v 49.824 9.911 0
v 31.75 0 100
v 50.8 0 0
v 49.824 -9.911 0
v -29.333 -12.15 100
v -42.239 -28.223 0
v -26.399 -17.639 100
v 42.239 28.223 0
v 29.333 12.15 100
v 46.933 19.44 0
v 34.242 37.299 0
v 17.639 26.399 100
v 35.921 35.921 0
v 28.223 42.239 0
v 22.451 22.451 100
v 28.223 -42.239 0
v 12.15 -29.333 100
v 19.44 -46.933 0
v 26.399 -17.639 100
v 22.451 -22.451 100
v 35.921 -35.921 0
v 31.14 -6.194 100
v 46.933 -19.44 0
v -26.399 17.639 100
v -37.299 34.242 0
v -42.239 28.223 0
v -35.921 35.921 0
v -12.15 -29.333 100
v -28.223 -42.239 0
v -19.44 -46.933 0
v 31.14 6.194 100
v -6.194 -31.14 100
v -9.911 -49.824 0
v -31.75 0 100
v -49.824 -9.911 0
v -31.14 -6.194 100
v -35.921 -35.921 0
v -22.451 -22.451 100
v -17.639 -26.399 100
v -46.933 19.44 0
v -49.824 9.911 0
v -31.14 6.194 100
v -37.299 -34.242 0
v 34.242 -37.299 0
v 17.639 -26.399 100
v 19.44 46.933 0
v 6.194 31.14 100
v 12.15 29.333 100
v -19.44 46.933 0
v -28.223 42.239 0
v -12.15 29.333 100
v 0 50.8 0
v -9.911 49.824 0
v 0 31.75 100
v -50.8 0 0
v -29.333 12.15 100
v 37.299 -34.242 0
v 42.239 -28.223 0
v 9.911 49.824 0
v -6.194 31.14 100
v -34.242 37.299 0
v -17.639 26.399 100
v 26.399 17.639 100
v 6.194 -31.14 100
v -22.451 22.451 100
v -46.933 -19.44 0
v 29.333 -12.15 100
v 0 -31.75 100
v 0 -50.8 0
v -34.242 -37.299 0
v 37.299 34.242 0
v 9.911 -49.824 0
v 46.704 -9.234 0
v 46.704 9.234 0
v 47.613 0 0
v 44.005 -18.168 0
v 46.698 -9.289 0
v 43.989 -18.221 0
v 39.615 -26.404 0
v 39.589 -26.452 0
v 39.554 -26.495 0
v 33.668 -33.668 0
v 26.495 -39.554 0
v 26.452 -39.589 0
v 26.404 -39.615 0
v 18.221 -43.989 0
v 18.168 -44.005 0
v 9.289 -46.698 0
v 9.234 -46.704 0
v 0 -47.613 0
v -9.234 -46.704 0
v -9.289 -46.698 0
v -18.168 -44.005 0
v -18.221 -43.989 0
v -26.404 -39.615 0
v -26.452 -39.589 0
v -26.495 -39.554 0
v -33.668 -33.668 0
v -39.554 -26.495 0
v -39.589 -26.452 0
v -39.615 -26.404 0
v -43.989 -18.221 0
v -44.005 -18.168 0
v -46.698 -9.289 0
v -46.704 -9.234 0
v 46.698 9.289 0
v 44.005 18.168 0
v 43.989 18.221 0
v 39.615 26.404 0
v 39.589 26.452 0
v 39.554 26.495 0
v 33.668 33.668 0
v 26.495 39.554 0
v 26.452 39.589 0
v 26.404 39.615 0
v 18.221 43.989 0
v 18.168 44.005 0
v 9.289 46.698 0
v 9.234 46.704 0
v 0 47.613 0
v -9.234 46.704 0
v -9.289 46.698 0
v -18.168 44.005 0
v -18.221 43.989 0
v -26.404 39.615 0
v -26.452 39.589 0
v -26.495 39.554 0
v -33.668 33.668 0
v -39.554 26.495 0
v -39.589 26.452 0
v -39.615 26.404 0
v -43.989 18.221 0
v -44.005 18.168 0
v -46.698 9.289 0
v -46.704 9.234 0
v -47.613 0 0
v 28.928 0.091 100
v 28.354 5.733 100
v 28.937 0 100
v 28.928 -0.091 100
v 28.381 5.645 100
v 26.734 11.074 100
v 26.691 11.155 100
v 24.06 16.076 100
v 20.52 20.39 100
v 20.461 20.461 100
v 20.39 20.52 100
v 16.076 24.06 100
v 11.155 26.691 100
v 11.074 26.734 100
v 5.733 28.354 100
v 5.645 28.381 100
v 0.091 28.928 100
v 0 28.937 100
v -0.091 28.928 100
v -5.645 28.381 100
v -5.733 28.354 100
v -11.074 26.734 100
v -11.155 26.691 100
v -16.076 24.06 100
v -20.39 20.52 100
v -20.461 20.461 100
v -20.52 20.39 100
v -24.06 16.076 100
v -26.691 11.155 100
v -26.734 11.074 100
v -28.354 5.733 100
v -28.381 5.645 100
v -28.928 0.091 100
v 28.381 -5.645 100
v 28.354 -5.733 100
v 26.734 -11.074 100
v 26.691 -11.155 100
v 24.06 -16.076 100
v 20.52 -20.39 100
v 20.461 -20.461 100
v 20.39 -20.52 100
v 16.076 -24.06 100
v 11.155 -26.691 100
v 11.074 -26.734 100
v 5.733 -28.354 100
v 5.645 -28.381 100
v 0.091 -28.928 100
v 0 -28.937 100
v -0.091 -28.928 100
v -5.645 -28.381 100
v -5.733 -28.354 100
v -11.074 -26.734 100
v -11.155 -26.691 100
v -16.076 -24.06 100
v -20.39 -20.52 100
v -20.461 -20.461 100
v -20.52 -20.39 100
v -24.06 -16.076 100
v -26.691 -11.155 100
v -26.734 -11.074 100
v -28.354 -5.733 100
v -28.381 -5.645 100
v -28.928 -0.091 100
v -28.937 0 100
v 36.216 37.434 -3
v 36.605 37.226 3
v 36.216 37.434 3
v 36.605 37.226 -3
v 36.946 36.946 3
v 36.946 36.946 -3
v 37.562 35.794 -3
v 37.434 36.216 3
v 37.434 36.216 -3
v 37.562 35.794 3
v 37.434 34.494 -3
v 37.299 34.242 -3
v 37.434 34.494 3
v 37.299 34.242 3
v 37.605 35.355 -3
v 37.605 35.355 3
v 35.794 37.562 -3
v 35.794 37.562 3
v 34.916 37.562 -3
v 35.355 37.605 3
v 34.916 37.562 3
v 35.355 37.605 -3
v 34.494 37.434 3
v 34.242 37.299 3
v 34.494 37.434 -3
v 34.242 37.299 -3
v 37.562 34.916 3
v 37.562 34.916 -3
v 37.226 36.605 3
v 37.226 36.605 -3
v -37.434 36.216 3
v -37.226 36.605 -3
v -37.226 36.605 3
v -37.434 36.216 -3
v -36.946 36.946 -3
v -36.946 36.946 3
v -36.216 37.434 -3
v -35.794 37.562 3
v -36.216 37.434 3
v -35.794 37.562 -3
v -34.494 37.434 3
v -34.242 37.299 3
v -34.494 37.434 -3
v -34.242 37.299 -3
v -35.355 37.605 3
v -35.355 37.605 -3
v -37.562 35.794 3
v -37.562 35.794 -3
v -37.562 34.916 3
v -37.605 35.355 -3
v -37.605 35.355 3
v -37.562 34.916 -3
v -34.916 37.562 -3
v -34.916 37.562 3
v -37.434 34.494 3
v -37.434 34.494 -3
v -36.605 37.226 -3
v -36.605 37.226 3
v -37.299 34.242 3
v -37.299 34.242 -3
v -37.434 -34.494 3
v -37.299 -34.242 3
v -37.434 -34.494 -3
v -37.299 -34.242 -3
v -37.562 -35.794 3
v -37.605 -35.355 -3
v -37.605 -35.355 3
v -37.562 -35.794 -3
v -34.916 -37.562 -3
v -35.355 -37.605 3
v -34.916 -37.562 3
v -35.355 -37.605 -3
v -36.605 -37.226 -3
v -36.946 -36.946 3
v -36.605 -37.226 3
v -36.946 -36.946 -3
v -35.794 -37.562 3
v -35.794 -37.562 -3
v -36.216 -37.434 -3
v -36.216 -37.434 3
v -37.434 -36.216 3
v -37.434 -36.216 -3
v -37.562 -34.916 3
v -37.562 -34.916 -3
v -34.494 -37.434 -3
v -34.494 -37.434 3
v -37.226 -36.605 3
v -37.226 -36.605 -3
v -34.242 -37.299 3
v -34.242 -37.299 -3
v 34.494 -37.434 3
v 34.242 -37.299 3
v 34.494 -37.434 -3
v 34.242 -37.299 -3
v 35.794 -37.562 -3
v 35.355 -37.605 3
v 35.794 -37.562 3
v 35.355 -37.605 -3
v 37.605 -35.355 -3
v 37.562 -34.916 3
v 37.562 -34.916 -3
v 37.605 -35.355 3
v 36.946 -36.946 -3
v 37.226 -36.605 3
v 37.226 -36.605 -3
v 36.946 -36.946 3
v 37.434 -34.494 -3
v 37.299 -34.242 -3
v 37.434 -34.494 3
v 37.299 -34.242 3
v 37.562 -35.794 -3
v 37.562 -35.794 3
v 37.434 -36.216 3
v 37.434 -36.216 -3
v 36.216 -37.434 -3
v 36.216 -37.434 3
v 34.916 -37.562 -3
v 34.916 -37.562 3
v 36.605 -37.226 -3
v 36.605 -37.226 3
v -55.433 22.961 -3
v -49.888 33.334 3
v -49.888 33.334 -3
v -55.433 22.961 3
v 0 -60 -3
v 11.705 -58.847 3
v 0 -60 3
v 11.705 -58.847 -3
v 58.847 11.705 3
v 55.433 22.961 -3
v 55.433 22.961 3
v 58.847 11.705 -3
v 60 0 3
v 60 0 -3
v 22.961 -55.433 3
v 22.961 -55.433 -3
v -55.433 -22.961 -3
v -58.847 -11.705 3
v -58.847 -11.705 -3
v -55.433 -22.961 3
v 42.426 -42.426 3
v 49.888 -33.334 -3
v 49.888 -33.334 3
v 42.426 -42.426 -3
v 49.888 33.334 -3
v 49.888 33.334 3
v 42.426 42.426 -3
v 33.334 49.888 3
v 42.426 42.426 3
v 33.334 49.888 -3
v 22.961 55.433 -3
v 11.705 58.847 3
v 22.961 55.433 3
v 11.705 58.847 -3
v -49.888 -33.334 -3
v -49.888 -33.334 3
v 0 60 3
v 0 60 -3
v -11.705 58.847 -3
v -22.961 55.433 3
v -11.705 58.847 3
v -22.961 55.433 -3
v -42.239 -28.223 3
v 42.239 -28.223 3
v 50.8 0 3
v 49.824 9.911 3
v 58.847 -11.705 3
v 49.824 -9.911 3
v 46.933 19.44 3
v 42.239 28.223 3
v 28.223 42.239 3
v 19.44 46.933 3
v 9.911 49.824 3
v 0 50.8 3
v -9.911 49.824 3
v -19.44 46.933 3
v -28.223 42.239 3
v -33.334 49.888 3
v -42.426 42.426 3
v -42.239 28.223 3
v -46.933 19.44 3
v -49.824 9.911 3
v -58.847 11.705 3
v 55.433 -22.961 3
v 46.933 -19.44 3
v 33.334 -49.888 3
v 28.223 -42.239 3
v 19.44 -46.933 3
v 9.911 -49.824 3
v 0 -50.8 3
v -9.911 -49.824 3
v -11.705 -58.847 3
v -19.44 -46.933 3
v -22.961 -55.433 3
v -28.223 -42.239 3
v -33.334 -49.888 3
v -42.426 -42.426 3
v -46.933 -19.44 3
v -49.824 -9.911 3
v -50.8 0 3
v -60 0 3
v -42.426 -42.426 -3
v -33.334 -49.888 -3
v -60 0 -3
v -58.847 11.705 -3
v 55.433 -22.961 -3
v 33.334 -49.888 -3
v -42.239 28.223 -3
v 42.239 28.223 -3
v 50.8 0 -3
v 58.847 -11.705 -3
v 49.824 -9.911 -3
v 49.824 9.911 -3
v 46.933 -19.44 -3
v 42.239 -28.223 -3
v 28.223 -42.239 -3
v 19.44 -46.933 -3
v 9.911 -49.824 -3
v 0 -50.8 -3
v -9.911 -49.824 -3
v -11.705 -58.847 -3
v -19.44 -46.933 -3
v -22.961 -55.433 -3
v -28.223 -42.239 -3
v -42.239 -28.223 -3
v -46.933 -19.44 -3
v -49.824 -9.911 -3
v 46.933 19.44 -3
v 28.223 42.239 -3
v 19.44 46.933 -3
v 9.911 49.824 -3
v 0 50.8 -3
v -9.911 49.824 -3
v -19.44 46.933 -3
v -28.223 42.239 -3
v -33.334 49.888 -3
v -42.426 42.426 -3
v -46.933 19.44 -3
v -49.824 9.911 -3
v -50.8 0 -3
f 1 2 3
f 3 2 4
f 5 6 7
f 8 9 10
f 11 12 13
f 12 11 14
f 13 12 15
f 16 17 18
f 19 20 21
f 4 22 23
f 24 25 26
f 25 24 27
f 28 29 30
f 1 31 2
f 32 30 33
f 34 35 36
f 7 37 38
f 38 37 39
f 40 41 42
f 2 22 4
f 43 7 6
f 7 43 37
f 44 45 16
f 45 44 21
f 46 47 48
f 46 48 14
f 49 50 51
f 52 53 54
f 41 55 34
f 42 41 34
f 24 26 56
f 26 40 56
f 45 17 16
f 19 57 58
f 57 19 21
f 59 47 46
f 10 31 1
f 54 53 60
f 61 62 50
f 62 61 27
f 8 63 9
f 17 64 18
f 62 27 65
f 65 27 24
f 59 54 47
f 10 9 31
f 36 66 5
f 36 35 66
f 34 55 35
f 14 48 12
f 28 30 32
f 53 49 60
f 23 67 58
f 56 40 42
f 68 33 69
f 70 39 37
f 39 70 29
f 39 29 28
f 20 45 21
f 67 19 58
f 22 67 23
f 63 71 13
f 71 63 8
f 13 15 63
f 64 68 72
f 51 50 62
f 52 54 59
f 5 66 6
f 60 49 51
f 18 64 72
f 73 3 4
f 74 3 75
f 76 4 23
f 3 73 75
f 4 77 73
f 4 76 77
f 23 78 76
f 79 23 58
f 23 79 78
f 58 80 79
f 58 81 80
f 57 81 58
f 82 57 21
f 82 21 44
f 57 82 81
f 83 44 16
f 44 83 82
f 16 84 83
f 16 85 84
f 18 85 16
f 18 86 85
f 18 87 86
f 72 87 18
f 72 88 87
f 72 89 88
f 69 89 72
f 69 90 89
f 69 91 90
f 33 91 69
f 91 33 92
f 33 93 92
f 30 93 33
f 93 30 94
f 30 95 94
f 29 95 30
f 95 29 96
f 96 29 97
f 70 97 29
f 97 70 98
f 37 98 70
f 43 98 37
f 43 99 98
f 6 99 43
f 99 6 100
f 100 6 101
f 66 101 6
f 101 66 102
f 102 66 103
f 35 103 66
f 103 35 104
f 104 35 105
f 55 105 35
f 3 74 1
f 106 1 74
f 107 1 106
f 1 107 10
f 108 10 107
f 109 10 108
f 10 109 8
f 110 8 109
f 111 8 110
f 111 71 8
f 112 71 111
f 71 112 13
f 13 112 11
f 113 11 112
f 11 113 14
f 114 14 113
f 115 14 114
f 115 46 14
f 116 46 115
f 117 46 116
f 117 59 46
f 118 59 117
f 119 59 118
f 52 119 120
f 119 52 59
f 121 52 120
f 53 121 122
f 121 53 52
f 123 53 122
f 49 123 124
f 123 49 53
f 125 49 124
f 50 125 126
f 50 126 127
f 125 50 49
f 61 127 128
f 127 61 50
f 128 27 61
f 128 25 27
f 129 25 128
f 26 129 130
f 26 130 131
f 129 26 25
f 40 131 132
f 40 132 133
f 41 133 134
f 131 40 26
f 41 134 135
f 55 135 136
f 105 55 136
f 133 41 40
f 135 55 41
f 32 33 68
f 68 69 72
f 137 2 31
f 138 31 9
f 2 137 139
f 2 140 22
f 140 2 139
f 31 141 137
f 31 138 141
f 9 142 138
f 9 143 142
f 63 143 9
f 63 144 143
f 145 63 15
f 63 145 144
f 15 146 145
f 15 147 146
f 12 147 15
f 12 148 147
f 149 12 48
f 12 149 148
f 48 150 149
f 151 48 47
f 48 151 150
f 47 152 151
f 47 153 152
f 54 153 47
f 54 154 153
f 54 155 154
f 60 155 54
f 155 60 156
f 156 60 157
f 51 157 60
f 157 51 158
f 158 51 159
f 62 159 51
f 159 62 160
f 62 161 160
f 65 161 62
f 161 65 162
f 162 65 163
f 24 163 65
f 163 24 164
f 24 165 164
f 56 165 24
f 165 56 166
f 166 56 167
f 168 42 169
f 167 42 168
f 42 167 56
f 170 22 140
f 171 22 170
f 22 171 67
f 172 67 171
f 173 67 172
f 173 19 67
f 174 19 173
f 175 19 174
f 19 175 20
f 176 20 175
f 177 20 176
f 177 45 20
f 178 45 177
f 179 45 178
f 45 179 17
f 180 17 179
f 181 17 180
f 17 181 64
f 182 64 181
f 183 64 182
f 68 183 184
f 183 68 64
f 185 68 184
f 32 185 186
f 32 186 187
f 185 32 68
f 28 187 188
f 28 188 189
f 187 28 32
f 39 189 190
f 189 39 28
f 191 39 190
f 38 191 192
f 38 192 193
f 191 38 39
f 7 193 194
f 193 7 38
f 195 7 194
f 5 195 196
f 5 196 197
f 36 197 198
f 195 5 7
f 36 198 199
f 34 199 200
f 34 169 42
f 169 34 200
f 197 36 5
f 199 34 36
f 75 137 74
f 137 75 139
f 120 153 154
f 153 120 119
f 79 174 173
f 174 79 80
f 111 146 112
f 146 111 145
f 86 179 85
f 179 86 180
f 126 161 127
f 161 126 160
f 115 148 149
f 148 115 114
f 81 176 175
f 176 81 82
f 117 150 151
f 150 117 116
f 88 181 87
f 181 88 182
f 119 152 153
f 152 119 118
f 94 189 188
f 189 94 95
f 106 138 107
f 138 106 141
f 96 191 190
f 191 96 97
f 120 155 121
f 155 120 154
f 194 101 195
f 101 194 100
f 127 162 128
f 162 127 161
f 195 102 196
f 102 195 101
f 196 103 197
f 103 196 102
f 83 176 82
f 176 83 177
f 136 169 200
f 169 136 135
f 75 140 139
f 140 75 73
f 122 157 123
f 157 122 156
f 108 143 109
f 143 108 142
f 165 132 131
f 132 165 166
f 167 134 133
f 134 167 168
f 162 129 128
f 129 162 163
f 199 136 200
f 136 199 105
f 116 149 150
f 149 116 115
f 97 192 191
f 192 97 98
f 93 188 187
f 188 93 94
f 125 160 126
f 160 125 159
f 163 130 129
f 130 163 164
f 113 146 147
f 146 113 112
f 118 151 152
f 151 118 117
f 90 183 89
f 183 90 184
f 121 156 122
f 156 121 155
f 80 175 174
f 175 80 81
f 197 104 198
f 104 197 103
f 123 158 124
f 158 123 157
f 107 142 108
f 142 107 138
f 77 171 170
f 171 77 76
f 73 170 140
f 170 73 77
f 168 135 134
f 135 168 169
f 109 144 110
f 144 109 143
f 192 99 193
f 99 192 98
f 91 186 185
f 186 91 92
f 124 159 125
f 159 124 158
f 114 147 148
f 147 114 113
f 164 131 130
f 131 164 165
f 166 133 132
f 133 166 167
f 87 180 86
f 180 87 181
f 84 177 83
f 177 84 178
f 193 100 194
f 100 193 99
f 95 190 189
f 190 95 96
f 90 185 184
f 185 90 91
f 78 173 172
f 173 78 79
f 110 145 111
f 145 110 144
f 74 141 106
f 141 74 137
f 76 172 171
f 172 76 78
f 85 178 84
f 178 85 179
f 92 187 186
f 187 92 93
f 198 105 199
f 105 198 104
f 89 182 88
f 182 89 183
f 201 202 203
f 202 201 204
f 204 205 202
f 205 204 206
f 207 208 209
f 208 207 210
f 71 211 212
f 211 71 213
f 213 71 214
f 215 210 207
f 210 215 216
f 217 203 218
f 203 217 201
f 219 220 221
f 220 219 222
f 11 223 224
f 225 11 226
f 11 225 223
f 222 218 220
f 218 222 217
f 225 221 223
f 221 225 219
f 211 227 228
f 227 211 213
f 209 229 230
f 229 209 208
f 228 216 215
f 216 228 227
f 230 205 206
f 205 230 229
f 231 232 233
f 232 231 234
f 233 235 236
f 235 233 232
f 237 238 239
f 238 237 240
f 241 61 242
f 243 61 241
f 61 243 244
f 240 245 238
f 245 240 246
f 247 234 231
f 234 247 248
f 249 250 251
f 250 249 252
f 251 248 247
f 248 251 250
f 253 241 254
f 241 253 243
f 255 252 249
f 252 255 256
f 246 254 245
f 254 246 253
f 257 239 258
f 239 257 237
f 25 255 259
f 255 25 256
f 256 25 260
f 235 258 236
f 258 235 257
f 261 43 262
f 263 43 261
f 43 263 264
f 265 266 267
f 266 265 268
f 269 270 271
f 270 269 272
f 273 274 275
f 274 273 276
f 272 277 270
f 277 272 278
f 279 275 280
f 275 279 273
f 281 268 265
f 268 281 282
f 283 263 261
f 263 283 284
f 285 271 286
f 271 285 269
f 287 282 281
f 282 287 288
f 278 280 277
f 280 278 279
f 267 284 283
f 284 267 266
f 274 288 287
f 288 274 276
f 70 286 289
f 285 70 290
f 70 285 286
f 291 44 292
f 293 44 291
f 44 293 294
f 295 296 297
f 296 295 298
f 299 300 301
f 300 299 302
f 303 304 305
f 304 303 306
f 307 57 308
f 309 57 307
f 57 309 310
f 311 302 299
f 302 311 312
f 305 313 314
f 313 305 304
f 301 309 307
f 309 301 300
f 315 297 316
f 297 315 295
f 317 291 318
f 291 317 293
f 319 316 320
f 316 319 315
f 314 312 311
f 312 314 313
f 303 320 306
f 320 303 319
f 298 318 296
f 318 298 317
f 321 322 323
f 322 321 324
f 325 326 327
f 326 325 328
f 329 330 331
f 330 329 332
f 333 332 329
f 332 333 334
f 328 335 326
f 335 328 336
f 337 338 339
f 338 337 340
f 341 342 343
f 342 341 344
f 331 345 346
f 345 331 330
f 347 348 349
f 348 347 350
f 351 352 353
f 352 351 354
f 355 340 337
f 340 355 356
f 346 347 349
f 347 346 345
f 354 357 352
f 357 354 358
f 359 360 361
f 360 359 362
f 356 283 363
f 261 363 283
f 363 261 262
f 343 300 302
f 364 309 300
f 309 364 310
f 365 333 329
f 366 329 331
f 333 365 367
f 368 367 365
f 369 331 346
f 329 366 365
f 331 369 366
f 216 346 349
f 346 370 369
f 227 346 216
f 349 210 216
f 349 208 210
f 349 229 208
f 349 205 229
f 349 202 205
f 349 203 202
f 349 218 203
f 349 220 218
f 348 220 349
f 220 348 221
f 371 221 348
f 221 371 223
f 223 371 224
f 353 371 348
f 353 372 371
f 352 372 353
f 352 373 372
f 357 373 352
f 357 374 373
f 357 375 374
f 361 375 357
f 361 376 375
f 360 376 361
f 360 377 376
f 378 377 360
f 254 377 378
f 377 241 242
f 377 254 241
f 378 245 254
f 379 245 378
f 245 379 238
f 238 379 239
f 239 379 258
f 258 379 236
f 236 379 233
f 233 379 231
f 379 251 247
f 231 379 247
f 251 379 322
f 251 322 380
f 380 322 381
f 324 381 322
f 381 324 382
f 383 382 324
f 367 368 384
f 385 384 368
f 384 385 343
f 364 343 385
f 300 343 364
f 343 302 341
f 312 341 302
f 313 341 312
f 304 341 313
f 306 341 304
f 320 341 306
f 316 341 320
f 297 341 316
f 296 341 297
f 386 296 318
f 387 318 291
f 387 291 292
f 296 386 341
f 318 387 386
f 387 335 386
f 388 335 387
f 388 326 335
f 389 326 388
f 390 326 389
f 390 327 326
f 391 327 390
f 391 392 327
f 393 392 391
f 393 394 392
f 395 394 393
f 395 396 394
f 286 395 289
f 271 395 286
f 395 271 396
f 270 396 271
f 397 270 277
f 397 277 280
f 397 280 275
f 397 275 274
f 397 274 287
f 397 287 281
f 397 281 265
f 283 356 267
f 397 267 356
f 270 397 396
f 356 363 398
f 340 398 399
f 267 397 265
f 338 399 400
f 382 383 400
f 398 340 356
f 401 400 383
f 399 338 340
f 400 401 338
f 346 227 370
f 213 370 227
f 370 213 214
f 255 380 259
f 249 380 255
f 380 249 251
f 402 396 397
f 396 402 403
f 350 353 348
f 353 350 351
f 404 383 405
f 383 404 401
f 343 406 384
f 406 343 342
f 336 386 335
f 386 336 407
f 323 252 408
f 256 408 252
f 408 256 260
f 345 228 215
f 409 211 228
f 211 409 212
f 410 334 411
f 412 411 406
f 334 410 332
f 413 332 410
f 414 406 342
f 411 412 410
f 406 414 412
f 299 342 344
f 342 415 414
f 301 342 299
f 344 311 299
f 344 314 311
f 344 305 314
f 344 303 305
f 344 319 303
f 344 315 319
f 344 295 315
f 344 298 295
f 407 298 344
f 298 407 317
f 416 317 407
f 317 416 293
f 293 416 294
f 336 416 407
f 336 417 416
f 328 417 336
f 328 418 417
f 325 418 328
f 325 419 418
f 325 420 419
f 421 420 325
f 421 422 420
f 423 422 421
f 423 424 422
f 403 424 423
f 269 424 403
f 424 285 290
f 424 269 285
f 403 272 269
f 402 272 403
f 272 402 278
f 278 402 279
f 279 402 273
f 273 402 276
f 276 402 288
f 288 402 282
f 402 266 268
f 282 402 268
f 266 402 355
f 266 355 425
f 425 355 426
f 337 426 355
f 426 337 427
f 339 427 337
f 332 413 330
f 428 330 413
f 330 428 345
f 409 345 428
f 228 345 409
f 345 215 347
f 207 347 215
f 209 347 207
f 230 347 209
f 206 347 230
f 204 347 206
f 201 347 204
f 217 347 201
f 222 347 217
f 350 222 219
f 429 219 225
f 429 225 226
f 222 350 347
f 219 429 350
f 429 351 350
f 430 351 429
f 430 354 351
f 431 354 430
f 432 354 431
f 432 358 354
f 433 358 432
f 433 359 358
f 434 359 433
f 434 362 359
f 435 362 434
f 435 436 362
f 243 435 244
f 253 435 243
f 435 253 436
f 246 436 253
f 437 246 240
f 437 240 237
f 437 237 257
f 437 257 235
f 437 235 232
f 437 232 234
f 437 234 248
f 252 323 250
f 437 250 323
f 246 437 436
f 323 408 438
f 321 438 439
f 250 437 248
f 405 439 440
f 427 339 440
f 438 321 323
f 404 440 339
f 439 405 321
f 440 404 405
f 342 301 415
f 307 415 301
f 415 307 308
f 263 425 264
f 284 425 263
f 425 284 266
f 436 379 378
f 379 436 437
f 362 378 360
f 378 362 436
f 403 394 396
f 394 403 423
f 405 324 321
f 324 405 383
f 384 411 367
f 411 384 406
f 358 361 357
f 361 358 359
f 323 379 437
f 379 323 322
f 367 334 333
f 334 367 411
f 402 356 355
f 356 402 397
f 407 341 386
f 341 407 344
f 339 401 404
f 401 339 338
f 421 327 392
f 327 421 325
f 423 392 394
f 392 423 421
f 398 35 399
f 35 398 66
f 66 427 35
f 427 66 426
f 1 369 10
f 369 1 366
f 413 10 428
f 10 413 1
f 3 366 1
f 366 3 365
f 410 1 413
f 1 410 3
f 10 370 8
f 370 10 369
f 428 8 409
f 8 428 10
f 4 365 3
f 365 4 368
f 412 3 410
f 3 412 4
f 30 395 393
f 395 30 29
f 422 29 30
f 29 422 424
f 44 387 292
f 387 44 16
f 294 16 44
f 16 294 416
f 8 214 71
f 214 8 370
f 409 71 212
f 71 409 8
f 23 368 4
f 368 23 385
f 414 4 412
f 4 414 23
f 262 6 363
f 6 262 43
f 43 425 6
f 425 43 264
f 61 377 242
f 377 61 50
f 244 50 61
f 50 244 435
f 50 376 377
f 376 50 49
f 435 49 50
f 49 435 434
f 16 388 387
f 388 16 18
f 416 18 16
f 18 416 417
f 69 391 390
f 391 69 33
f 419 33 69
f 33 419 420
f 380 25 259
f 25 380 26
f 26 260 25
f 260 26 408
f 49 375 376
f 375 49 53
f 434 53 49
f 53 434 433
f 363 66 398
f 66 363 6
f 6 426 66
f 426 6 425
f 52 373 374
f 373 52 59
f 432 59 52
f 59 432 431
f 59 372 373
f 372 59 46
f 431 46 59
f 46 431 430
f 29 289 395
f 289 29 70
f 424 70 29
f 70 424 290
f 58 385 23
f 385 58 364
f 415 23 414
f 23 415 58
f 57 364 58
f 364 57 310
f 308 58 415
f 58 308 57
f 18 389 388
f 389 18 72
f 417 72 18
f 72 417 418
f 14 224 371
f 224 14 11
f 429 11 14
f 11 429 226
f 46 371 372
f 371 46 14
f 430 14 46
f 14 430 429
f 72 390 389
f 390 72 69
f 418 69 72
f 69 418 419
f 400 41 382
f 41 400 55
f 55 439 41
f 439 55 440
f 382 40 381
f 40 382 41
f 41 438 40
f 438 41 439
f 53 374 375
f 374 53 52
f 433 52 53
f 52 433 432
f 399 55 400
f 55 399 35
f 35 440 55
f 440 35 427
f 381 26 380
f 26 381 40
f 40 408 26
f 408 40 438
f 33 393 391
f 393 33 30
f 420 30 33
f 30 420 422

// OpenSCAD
// file: trap_modules.scad
// ShopVac Rat Trap - Shared Modules
// Updated with actual component dimensions from BOM

// Global resolution
$fn = 32;

// === Tube Parameters ===
tube_outer_diameter = 101.6;  // 4 inches in mm (standard PVC size)
tube_wall_thickness = 3.2;    // Standard wall thickness
tube_inner_diameter = tube_outer_diameter - (2 * tube_wall_thickness);

// === Flange Parameters ===
flange_diameter = 120;         // Outer flange diameter
flange_thickness = 6;          // Flange thickness
flange_screw_hole_diameter = 4.5;  // M4 clearance holes
flange_screw_hole_inset = 10;  // Distance from flange edge

// === Center Joint - Alignment Pins ===
alignment_pin_diameter = 6;    // 6mm diameter pins
alignment_pin_length = 8;      // 8mm insertion depth
alignment_pin_radius = tube_outer_diameter/2 - 25;  // Position on flange
alignment_pin_clearance = 0.3; // Extra clearance for holes

// === Center Joint - O-Ring Seal ===
oring_groove_width = 3;        // Width of groove (for 2.5mm O-ring)
oring_groove_depth = 1.5;      // Depth of groove

// === STEMMA QT Sensor Mounts (Adafruit Standard) ===
// Standard STEMMA QT board: 17.78mm × 25.4mm (0.7" × 1.0")
stemma_qt_board_width = 17.78;   // Standard width
stemma_qt_board_length = 25.4;   // Standard length
stemma_qt_hole_diameter = 2.7;   // M2.5 clearance holes
stemma_qt_hole_spacing_w = 12.7; // Hole spacing width (0.5")
stemma_qt_hole_spacing_l = 20.3; // Hole spacing length (~0.8")
stemma_qt_mount_thickness = 3;   // Mount base thickness
stemma_qt_standoff_height = 5;   // PCB standoff height

// === PIR Sensor Mount (Adafruit 4871) ===
// Larger board: 32mm × 24mm
pir_board_width = 24;
pir_board_length = 32;
pir_hole_diameter = 3.2;      // M3 clearance
pir_hole_spacing = 28;        // Between mounting holes
pir_dome_diameter = 12;       // PIR dome clearance
pir_dome_height = 8;          // Dome projection

// ========== MODULES ==========

module flange(outer_diameter, thickness, screw_hole_diameter, screw_hole_inset) {
    difference() {
        cylinder(d = outer_diameter, h = thickness, center = true);
        cylinder(d = tube_outer_diameter, h = thickness + 1, center = true);

        // Screw holes
        for (a = [45, 135, 225, 315]) {
            rotate([0, 0, a]) {
                translate([outer_diameter/2 - screw_hole_inset, 0, 0]) {
                    cylinder(d = screw_hole_diameter, h = thickness + 1, center = true);
                }
            }
        }
    }
}

module tube(length, outer_diameter, wall_thickness) {
     difference() {
        cylinder(d=outer_diameter, h=length, center=true);
        cylinder(d=outer_diameter - (2*wall_thickness), h=length+1, center=true);
    }
}
// main file
// Vacuum Funnel
//
// Description:
// Funnel adapter to connect the trap to a shop vacuum.
// =========================================

include <trap_modules.scad>

// ========== CORE PARAMETERS ==========

// [Dimensions]
funnel_height = 100;

// [Opening Diameters]
large_opening_diameter = tube_outer_diameter;

// Vacuum Hose Diameter (Inner Diameter of the funnel's small end)
// Common sizes:
// - 63.5 mm (2.5") - Standard US Shop Vac
// - 35 mm - Common European/Domestic Vacuums
// - 32 mm - Common Domestic Vacuums
vacuum_hose_diameter = 63.5;
small_opening_diameter = vacuum_hose_diameter;
wall_thickness = 3;

// ========== MODULES ==========

module vacuum_funnel() {
    union() {
        difference() {
            // Main funnel body
            // Shifted up by funnel_height/2 so the bottom is at Z=0 (relative to the flange if we flip it,
            // but here we want the flange at Z=0 for printing stability usually, or the large opening)

            // Let's orient it so the large opening (flange side) is at Z=0
            translate([0,0,funnel_height/2]) {
                cylinder(h = funnel_height, d1 = large_opening_diameter, d2 = small_opening_diameter, center=true);
            }

            // Hollow out the inside
            translate([0,0,funnel_height/2]) {
                 cylinder(h = funnel_height+2, d1 = large_opening_diameter - (2*wall_thickness), d2 = small_opening_diameter - (2*wall_thickness), center=true);
            }
        }

        // Flange at the large opening (Base)
        // Positioned at Z=0
        translate([0,0,0]) {
            flange(flange_diameter, flange_thickness, flange_screw_hole_diameter, flange_screw_hole_inset);
        }
    }
}

// ========== ASSEMBLY CALL ==========
vacuum_funnel();
